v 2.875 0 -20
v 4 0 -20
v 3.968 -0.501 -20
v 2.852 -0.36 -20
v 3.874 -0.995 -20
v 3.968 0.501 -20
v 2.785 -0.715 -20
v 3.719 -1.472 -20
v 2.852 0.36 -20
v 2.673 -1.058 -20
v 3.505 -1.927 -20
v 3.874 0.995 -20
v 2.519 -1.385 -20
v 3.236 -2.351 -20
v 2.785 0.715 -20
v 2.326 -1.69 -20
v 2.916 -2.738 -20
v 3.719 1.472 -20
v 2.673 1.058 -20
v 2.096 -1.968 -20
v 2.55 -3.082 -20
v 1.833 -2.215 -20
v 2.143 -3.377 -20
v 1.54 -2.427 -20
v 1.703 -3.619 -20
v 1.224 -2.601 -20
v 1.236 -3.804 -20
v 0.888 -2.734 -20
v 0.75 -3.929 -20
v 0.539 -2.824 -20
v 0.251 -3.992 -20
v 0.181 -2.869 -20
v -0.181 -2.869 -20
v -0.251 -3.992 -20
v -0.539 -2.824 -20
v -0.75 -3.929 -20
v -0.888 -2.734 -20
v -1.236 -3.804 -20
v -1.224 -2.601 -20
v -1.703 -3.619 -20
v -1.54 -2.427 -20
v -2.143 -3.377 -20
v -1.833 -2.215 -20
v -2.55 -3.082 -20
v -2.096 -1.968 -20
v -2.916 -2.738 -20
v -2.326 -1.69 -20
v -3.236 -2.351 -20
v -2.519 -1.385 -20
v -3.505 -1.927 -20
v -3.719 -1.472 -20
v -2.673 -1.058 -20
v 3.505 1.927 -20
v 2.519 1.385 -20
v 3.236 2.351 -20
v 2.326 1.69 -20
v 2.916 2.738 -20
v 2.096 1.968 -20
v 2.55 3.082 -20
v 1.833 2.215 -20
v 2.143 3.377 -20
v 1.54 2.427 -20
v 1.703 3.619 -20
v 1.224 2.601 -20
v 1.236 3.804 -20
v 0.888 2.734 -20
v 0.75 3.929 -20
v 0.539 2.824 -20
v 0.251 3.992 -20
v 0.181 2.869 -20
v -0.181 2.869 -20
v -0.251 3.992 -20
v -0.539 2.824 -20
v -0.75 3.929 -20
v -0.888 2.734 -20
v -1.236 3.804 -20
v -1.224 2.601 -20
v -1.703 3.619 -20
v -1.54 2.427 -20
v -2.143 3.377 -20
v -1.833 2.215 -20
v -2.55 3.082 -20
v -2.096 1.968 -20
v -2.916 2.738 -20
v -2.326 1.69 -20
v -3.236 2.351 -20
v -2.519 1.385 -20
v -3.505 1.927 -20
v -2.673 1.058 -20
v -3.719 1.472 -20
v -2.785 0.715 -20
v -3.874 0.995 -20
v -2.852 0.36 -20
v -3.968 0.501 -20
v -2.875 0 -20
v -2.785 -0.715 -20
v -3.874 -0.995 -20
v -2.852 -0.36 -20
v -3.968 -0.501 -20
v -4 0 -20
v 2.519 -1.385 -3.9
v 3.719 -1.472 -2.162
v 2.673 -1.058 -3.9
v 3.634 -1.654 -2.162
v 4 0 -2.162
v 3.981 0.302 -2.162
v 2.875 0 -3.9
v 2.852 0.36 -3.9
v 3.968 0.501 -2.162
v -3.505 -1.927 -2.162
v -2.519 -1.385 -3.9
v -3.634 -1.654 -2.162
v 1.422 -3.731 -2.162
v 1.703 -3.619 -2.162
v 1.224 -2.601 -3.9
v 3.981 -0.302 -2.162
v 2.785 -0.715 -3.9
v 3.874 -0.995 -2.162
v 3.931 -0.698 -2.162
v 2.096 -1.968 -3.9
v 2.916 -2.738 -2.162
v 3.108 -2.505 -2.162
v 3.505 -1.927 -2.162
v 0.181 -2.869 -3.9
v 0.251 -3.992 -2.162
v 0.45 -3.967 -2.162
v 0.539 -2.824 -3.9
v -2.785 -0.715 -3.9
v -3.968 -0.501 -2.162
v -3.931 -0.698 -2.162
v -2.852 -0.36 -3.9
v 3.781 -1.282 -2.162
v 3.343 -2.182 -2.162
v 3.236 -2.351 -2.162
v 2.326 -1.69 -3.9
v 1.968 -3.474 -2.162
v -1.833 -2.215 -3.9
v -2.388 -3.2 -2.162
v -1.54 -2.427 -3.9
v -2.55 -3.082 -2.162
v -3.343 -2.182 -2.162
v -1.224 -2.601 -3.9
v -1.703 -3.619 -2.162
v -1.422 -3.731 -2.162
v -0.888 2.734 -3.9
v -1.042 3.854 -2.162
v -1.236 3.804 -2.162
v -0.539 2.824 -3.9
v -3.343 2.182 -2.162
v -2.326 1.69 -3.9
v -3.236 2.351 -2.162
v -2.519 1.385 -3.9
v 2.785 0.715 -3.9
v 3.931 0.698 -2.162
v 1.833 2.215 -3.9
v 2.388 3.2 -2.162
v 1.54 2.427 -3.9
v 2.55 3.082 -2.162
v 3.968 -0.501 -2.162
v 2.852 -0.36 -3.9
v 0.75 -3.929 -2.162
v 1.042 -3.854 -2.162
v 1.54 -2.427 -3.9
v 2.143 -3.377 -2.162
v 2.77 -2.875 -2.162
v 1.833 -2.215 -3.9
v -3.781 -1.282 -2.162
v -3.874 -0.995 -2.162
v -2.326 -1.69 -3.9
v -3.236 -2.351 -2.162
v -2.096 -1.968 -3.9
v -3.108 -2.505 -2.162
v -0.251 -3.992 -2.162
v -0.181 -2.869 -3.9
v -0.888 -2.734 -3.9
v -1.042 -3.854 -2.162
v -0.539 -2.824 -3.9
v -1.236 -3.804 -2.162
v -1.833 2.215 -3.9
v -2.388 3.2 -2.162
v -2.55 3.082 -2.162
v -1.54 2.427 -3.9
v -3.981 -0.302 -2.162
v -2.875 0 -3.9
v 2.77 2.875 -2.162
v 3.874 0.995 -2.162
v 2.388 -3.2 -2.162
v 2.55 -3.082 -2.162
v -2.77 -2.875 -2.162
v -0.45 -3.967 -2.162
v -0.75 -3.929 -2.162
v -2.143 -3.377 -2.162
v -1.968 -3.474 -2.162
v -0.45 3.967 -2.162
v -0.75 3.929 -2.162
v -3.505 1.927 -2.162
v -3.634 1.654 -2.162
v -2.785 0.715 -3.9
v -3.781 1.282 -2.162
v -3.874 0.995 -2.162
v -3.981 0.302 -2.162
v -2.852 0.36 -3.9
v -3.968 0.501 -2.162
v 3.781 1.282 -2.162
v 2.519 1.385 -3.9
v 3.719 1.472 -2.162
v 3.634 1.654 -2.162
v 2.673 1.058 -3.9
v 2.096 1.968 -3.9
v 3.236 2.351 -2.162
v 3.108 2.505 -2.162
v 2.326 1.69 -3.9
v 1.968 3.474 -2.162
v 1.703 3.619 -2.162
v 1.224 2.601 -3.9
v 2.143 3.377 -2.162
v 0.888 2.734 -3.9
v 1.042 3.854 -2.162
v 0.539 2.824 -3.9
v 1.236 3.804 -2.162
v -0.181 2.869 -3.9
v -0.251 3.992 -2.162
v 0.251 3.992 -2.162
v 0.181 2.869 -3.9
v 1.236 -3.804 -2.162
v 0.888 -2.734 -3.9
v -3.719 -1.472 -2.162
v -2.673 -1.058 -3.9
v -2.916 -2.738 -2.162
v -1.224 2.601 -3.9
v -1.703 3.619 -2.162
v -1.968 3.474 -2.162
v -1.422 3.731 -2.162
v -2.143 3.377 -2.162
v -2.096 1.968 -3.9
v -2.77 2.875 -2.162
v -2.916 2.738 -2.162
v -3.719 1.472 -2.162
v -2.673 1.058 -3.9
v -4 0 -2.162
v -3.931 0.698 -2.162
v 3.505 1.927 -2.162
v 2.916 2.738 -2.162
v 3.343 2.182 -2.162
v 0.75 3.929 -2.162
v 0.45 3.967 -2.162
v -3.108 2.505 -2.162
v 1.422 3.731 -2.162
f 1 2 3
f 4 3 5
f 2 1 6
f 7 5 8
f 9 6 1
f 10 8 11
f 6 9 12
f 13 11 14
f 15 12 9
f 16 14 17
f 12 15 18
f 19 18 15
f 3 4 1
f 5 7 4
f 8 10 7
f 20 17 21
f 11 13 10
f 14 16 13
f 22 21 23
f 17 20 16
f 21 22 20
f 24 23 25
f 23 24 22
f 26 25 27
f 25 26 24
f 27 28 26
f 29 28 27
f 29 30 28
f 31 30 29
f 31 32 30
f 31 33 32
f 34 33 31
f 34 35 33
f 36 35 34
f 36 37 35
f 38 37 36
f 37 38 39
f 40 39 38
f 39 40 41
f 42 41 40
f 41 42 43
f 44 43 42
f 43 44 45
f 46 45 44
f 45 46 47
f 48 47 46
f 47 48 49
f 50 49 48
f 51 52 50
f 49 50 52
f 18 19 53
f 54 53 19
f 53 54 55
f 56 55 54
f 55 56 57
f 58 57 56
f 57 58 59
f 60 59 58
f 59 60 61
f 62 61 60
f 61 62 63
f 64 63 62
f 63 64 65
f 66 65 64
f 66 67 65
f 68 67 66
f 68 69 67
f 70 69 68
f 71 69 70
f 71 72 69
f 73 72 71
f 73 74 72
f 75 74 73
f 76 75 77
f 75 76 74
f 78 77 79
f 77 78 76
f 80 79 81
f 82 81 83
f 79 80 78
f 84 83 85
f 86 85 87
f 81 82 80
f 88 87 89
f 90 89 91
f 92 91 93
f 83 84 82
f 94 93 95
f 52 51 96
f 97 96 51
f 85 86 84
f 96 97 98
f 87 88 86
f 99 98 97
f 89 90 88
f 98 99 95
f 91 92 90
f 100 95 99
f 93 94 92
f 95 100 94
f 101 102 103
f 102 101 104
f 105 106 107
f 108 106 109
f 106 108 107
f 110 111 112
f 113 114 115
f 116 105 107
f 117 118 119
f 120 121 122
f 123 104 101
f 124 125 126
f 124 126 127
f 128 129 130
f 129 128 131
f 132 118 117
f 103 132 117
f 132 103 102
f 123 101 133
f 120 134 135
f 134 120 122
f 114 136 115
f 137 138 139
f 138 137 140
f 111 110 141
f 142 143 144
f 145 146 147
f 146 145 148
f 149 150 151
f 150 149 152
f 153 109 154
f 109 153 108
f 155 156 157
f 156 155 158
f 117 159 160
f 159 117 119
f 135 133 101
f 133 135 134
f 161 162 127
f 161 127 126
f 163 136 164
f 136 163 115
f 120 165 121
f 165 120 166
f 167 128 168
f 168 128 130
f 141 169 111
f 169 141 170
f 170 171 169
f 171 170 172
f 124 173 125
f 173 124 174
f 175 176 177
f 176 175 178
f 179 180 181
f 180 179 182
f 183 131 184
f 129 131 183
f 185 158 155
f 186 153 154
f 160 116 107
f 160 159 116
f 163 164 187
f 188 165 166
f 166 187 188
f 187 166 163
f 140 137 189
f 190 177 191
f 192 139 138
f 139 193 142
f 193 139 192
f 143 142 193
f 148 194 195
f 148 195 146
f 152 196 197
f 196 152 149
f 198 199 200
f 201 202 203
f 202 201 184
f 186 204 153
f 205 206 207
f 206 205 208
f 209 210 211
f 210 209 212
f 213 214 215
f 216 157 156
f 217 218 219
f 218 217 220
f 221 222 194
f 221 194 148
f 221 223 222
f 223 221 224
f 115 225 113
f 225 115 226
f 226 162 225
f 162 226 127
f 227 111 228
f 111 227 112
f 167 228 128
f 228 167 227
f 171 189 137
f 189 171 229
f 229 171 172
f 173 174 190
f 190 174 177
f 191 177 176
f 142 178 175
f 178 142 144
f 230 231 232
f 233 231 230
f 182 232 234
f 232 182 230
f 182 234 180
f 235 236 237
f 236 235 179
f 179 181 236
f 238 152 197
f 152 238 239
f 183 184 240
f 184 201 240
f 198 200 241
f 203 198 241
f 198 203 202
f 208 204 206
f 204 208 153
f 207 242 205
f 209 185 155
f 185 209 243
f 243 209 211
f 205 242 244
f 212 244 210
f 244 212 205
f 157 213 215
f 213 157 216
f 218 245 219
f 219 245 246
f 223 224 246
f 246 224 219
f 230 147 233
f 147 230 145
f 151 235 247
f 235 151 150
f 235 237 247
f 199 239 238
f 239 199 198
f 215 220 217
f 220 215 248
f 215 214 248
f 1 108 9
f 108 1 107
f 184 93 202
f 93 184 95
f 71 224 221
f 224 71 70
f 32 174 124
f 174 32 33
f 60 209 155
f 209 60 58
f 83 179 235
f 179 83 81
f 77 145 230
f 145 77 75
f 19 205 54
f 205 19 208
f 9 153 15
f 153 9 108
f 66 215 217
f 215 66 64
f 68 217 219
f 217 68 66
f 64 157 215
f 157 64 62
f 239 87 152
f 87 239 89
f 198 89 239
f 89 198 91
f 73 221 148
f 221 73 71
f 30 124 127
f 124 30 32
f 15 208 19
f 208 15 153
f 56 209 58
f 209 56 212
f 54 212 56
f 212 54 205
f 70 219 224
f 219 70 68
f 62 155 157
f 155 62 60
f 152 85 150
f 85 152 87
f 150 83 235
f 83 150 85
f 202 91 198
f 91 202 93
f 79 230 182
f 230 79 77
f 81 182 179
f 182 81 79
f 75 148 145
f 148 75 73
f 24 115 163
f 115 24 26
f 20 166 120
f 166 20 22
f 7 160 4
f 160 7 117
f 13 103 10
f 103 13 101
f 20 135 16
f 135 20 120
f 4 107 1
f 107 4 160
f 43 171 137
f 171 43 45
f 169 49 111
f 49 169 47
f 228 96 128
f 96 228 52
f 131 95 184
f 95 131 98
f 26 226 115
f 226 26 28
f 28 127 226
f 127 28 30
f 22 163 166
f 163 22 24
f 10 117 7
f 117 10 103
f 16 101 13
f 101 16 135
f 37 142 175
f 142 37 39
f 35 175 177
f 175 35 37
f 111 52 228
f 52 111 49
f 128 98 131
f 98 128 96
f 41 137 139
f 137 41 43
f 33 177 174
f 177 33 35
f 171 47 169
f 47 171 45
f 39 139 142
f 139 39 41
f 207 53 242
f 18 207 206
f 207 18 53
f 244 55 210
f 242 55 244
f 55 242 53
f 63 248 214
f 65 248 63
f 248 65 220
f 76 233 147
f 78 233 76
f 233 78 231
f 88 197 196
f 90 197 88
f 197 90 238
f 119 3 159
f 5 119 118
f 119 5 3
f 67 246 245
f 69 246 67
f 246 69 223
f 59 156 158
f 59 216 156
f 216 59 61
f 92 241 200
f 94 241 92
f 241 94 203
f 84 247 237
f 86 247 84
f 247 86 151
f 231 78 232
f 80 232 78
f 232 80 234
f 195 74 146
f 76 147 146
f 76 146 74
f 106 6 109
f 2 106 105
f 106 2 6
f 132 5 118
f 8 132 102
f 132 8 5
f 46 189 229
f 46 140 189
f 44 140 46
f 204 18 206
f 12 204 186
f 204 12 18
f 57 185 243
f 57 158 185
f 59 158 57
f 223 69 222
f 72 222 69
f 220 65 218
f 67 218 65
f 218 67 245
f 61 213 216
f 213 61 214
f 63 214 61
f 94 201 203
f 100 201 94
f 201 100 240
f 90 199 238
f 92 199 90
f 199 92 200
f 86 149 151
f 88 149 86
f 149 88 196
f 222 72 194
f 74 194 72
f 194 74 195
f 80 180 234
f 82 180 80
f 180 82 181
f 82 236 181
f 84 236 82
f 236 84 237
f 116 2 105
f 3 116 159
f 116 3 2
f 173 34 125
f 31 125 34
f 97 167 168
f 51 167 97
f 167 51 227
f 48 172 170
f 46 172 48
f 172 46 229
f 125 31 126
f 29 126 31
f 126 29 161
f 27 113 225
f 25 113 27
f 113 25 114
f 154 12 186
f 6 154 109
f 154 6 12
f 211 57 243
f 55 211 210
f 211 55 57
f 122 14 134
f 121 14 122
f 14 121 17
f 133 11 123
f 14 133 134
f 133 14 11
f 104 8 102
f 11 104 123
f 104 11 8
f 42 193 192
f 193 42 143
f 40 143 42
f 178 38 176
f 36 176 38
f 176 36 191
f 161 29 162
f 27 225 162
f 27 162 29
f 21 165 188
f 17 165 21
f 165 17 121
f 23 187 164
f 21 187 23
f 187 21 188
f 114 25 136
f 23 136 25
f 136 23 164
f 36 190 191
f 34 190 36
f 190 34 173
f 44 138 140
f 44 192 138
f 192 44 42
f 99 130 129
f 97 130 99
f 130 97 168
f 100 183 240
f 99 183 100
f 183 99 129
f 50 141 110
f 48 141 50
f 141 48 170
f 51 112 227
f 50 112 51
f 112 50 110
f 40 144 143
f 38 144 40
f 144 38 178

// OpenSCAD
$fn = 50;


difference() {
	union() {
		translate(v = [0, 0, -20.0000000000]) {
			cylinder(h = 20, r = 4.0000000000);
		}
		cylinder(h = 0, r = 7.0000000000);
	}
	union() {
		translate(v = [0, 0, 0]) {
			rotate(a = [0, 0, 0]) {
				difference() {
					union() {
						#translate(v = [0, 0, -20.0000000000]) {
							cylinder(h = 20, r = 2.6000000000);
						}
						#translate(v = [0, 0, -3.9000000000]) {
							cylinder(h = 3.9000000000, r = 4.0000000000, r1 = 2.8750000000, r2 = 5.4000000000);
						}
						#translate(v = [0, 0, -20.0000000000]) {
							cylinder(h = 20, r = 2.8750000000);
						}
						#translate(v = [0, 0, -20.0000000000]) {
							cylinder(h = 20, r = 2.6000000000);
						}
					}
					union();
				}
			}
		}
	}
}
